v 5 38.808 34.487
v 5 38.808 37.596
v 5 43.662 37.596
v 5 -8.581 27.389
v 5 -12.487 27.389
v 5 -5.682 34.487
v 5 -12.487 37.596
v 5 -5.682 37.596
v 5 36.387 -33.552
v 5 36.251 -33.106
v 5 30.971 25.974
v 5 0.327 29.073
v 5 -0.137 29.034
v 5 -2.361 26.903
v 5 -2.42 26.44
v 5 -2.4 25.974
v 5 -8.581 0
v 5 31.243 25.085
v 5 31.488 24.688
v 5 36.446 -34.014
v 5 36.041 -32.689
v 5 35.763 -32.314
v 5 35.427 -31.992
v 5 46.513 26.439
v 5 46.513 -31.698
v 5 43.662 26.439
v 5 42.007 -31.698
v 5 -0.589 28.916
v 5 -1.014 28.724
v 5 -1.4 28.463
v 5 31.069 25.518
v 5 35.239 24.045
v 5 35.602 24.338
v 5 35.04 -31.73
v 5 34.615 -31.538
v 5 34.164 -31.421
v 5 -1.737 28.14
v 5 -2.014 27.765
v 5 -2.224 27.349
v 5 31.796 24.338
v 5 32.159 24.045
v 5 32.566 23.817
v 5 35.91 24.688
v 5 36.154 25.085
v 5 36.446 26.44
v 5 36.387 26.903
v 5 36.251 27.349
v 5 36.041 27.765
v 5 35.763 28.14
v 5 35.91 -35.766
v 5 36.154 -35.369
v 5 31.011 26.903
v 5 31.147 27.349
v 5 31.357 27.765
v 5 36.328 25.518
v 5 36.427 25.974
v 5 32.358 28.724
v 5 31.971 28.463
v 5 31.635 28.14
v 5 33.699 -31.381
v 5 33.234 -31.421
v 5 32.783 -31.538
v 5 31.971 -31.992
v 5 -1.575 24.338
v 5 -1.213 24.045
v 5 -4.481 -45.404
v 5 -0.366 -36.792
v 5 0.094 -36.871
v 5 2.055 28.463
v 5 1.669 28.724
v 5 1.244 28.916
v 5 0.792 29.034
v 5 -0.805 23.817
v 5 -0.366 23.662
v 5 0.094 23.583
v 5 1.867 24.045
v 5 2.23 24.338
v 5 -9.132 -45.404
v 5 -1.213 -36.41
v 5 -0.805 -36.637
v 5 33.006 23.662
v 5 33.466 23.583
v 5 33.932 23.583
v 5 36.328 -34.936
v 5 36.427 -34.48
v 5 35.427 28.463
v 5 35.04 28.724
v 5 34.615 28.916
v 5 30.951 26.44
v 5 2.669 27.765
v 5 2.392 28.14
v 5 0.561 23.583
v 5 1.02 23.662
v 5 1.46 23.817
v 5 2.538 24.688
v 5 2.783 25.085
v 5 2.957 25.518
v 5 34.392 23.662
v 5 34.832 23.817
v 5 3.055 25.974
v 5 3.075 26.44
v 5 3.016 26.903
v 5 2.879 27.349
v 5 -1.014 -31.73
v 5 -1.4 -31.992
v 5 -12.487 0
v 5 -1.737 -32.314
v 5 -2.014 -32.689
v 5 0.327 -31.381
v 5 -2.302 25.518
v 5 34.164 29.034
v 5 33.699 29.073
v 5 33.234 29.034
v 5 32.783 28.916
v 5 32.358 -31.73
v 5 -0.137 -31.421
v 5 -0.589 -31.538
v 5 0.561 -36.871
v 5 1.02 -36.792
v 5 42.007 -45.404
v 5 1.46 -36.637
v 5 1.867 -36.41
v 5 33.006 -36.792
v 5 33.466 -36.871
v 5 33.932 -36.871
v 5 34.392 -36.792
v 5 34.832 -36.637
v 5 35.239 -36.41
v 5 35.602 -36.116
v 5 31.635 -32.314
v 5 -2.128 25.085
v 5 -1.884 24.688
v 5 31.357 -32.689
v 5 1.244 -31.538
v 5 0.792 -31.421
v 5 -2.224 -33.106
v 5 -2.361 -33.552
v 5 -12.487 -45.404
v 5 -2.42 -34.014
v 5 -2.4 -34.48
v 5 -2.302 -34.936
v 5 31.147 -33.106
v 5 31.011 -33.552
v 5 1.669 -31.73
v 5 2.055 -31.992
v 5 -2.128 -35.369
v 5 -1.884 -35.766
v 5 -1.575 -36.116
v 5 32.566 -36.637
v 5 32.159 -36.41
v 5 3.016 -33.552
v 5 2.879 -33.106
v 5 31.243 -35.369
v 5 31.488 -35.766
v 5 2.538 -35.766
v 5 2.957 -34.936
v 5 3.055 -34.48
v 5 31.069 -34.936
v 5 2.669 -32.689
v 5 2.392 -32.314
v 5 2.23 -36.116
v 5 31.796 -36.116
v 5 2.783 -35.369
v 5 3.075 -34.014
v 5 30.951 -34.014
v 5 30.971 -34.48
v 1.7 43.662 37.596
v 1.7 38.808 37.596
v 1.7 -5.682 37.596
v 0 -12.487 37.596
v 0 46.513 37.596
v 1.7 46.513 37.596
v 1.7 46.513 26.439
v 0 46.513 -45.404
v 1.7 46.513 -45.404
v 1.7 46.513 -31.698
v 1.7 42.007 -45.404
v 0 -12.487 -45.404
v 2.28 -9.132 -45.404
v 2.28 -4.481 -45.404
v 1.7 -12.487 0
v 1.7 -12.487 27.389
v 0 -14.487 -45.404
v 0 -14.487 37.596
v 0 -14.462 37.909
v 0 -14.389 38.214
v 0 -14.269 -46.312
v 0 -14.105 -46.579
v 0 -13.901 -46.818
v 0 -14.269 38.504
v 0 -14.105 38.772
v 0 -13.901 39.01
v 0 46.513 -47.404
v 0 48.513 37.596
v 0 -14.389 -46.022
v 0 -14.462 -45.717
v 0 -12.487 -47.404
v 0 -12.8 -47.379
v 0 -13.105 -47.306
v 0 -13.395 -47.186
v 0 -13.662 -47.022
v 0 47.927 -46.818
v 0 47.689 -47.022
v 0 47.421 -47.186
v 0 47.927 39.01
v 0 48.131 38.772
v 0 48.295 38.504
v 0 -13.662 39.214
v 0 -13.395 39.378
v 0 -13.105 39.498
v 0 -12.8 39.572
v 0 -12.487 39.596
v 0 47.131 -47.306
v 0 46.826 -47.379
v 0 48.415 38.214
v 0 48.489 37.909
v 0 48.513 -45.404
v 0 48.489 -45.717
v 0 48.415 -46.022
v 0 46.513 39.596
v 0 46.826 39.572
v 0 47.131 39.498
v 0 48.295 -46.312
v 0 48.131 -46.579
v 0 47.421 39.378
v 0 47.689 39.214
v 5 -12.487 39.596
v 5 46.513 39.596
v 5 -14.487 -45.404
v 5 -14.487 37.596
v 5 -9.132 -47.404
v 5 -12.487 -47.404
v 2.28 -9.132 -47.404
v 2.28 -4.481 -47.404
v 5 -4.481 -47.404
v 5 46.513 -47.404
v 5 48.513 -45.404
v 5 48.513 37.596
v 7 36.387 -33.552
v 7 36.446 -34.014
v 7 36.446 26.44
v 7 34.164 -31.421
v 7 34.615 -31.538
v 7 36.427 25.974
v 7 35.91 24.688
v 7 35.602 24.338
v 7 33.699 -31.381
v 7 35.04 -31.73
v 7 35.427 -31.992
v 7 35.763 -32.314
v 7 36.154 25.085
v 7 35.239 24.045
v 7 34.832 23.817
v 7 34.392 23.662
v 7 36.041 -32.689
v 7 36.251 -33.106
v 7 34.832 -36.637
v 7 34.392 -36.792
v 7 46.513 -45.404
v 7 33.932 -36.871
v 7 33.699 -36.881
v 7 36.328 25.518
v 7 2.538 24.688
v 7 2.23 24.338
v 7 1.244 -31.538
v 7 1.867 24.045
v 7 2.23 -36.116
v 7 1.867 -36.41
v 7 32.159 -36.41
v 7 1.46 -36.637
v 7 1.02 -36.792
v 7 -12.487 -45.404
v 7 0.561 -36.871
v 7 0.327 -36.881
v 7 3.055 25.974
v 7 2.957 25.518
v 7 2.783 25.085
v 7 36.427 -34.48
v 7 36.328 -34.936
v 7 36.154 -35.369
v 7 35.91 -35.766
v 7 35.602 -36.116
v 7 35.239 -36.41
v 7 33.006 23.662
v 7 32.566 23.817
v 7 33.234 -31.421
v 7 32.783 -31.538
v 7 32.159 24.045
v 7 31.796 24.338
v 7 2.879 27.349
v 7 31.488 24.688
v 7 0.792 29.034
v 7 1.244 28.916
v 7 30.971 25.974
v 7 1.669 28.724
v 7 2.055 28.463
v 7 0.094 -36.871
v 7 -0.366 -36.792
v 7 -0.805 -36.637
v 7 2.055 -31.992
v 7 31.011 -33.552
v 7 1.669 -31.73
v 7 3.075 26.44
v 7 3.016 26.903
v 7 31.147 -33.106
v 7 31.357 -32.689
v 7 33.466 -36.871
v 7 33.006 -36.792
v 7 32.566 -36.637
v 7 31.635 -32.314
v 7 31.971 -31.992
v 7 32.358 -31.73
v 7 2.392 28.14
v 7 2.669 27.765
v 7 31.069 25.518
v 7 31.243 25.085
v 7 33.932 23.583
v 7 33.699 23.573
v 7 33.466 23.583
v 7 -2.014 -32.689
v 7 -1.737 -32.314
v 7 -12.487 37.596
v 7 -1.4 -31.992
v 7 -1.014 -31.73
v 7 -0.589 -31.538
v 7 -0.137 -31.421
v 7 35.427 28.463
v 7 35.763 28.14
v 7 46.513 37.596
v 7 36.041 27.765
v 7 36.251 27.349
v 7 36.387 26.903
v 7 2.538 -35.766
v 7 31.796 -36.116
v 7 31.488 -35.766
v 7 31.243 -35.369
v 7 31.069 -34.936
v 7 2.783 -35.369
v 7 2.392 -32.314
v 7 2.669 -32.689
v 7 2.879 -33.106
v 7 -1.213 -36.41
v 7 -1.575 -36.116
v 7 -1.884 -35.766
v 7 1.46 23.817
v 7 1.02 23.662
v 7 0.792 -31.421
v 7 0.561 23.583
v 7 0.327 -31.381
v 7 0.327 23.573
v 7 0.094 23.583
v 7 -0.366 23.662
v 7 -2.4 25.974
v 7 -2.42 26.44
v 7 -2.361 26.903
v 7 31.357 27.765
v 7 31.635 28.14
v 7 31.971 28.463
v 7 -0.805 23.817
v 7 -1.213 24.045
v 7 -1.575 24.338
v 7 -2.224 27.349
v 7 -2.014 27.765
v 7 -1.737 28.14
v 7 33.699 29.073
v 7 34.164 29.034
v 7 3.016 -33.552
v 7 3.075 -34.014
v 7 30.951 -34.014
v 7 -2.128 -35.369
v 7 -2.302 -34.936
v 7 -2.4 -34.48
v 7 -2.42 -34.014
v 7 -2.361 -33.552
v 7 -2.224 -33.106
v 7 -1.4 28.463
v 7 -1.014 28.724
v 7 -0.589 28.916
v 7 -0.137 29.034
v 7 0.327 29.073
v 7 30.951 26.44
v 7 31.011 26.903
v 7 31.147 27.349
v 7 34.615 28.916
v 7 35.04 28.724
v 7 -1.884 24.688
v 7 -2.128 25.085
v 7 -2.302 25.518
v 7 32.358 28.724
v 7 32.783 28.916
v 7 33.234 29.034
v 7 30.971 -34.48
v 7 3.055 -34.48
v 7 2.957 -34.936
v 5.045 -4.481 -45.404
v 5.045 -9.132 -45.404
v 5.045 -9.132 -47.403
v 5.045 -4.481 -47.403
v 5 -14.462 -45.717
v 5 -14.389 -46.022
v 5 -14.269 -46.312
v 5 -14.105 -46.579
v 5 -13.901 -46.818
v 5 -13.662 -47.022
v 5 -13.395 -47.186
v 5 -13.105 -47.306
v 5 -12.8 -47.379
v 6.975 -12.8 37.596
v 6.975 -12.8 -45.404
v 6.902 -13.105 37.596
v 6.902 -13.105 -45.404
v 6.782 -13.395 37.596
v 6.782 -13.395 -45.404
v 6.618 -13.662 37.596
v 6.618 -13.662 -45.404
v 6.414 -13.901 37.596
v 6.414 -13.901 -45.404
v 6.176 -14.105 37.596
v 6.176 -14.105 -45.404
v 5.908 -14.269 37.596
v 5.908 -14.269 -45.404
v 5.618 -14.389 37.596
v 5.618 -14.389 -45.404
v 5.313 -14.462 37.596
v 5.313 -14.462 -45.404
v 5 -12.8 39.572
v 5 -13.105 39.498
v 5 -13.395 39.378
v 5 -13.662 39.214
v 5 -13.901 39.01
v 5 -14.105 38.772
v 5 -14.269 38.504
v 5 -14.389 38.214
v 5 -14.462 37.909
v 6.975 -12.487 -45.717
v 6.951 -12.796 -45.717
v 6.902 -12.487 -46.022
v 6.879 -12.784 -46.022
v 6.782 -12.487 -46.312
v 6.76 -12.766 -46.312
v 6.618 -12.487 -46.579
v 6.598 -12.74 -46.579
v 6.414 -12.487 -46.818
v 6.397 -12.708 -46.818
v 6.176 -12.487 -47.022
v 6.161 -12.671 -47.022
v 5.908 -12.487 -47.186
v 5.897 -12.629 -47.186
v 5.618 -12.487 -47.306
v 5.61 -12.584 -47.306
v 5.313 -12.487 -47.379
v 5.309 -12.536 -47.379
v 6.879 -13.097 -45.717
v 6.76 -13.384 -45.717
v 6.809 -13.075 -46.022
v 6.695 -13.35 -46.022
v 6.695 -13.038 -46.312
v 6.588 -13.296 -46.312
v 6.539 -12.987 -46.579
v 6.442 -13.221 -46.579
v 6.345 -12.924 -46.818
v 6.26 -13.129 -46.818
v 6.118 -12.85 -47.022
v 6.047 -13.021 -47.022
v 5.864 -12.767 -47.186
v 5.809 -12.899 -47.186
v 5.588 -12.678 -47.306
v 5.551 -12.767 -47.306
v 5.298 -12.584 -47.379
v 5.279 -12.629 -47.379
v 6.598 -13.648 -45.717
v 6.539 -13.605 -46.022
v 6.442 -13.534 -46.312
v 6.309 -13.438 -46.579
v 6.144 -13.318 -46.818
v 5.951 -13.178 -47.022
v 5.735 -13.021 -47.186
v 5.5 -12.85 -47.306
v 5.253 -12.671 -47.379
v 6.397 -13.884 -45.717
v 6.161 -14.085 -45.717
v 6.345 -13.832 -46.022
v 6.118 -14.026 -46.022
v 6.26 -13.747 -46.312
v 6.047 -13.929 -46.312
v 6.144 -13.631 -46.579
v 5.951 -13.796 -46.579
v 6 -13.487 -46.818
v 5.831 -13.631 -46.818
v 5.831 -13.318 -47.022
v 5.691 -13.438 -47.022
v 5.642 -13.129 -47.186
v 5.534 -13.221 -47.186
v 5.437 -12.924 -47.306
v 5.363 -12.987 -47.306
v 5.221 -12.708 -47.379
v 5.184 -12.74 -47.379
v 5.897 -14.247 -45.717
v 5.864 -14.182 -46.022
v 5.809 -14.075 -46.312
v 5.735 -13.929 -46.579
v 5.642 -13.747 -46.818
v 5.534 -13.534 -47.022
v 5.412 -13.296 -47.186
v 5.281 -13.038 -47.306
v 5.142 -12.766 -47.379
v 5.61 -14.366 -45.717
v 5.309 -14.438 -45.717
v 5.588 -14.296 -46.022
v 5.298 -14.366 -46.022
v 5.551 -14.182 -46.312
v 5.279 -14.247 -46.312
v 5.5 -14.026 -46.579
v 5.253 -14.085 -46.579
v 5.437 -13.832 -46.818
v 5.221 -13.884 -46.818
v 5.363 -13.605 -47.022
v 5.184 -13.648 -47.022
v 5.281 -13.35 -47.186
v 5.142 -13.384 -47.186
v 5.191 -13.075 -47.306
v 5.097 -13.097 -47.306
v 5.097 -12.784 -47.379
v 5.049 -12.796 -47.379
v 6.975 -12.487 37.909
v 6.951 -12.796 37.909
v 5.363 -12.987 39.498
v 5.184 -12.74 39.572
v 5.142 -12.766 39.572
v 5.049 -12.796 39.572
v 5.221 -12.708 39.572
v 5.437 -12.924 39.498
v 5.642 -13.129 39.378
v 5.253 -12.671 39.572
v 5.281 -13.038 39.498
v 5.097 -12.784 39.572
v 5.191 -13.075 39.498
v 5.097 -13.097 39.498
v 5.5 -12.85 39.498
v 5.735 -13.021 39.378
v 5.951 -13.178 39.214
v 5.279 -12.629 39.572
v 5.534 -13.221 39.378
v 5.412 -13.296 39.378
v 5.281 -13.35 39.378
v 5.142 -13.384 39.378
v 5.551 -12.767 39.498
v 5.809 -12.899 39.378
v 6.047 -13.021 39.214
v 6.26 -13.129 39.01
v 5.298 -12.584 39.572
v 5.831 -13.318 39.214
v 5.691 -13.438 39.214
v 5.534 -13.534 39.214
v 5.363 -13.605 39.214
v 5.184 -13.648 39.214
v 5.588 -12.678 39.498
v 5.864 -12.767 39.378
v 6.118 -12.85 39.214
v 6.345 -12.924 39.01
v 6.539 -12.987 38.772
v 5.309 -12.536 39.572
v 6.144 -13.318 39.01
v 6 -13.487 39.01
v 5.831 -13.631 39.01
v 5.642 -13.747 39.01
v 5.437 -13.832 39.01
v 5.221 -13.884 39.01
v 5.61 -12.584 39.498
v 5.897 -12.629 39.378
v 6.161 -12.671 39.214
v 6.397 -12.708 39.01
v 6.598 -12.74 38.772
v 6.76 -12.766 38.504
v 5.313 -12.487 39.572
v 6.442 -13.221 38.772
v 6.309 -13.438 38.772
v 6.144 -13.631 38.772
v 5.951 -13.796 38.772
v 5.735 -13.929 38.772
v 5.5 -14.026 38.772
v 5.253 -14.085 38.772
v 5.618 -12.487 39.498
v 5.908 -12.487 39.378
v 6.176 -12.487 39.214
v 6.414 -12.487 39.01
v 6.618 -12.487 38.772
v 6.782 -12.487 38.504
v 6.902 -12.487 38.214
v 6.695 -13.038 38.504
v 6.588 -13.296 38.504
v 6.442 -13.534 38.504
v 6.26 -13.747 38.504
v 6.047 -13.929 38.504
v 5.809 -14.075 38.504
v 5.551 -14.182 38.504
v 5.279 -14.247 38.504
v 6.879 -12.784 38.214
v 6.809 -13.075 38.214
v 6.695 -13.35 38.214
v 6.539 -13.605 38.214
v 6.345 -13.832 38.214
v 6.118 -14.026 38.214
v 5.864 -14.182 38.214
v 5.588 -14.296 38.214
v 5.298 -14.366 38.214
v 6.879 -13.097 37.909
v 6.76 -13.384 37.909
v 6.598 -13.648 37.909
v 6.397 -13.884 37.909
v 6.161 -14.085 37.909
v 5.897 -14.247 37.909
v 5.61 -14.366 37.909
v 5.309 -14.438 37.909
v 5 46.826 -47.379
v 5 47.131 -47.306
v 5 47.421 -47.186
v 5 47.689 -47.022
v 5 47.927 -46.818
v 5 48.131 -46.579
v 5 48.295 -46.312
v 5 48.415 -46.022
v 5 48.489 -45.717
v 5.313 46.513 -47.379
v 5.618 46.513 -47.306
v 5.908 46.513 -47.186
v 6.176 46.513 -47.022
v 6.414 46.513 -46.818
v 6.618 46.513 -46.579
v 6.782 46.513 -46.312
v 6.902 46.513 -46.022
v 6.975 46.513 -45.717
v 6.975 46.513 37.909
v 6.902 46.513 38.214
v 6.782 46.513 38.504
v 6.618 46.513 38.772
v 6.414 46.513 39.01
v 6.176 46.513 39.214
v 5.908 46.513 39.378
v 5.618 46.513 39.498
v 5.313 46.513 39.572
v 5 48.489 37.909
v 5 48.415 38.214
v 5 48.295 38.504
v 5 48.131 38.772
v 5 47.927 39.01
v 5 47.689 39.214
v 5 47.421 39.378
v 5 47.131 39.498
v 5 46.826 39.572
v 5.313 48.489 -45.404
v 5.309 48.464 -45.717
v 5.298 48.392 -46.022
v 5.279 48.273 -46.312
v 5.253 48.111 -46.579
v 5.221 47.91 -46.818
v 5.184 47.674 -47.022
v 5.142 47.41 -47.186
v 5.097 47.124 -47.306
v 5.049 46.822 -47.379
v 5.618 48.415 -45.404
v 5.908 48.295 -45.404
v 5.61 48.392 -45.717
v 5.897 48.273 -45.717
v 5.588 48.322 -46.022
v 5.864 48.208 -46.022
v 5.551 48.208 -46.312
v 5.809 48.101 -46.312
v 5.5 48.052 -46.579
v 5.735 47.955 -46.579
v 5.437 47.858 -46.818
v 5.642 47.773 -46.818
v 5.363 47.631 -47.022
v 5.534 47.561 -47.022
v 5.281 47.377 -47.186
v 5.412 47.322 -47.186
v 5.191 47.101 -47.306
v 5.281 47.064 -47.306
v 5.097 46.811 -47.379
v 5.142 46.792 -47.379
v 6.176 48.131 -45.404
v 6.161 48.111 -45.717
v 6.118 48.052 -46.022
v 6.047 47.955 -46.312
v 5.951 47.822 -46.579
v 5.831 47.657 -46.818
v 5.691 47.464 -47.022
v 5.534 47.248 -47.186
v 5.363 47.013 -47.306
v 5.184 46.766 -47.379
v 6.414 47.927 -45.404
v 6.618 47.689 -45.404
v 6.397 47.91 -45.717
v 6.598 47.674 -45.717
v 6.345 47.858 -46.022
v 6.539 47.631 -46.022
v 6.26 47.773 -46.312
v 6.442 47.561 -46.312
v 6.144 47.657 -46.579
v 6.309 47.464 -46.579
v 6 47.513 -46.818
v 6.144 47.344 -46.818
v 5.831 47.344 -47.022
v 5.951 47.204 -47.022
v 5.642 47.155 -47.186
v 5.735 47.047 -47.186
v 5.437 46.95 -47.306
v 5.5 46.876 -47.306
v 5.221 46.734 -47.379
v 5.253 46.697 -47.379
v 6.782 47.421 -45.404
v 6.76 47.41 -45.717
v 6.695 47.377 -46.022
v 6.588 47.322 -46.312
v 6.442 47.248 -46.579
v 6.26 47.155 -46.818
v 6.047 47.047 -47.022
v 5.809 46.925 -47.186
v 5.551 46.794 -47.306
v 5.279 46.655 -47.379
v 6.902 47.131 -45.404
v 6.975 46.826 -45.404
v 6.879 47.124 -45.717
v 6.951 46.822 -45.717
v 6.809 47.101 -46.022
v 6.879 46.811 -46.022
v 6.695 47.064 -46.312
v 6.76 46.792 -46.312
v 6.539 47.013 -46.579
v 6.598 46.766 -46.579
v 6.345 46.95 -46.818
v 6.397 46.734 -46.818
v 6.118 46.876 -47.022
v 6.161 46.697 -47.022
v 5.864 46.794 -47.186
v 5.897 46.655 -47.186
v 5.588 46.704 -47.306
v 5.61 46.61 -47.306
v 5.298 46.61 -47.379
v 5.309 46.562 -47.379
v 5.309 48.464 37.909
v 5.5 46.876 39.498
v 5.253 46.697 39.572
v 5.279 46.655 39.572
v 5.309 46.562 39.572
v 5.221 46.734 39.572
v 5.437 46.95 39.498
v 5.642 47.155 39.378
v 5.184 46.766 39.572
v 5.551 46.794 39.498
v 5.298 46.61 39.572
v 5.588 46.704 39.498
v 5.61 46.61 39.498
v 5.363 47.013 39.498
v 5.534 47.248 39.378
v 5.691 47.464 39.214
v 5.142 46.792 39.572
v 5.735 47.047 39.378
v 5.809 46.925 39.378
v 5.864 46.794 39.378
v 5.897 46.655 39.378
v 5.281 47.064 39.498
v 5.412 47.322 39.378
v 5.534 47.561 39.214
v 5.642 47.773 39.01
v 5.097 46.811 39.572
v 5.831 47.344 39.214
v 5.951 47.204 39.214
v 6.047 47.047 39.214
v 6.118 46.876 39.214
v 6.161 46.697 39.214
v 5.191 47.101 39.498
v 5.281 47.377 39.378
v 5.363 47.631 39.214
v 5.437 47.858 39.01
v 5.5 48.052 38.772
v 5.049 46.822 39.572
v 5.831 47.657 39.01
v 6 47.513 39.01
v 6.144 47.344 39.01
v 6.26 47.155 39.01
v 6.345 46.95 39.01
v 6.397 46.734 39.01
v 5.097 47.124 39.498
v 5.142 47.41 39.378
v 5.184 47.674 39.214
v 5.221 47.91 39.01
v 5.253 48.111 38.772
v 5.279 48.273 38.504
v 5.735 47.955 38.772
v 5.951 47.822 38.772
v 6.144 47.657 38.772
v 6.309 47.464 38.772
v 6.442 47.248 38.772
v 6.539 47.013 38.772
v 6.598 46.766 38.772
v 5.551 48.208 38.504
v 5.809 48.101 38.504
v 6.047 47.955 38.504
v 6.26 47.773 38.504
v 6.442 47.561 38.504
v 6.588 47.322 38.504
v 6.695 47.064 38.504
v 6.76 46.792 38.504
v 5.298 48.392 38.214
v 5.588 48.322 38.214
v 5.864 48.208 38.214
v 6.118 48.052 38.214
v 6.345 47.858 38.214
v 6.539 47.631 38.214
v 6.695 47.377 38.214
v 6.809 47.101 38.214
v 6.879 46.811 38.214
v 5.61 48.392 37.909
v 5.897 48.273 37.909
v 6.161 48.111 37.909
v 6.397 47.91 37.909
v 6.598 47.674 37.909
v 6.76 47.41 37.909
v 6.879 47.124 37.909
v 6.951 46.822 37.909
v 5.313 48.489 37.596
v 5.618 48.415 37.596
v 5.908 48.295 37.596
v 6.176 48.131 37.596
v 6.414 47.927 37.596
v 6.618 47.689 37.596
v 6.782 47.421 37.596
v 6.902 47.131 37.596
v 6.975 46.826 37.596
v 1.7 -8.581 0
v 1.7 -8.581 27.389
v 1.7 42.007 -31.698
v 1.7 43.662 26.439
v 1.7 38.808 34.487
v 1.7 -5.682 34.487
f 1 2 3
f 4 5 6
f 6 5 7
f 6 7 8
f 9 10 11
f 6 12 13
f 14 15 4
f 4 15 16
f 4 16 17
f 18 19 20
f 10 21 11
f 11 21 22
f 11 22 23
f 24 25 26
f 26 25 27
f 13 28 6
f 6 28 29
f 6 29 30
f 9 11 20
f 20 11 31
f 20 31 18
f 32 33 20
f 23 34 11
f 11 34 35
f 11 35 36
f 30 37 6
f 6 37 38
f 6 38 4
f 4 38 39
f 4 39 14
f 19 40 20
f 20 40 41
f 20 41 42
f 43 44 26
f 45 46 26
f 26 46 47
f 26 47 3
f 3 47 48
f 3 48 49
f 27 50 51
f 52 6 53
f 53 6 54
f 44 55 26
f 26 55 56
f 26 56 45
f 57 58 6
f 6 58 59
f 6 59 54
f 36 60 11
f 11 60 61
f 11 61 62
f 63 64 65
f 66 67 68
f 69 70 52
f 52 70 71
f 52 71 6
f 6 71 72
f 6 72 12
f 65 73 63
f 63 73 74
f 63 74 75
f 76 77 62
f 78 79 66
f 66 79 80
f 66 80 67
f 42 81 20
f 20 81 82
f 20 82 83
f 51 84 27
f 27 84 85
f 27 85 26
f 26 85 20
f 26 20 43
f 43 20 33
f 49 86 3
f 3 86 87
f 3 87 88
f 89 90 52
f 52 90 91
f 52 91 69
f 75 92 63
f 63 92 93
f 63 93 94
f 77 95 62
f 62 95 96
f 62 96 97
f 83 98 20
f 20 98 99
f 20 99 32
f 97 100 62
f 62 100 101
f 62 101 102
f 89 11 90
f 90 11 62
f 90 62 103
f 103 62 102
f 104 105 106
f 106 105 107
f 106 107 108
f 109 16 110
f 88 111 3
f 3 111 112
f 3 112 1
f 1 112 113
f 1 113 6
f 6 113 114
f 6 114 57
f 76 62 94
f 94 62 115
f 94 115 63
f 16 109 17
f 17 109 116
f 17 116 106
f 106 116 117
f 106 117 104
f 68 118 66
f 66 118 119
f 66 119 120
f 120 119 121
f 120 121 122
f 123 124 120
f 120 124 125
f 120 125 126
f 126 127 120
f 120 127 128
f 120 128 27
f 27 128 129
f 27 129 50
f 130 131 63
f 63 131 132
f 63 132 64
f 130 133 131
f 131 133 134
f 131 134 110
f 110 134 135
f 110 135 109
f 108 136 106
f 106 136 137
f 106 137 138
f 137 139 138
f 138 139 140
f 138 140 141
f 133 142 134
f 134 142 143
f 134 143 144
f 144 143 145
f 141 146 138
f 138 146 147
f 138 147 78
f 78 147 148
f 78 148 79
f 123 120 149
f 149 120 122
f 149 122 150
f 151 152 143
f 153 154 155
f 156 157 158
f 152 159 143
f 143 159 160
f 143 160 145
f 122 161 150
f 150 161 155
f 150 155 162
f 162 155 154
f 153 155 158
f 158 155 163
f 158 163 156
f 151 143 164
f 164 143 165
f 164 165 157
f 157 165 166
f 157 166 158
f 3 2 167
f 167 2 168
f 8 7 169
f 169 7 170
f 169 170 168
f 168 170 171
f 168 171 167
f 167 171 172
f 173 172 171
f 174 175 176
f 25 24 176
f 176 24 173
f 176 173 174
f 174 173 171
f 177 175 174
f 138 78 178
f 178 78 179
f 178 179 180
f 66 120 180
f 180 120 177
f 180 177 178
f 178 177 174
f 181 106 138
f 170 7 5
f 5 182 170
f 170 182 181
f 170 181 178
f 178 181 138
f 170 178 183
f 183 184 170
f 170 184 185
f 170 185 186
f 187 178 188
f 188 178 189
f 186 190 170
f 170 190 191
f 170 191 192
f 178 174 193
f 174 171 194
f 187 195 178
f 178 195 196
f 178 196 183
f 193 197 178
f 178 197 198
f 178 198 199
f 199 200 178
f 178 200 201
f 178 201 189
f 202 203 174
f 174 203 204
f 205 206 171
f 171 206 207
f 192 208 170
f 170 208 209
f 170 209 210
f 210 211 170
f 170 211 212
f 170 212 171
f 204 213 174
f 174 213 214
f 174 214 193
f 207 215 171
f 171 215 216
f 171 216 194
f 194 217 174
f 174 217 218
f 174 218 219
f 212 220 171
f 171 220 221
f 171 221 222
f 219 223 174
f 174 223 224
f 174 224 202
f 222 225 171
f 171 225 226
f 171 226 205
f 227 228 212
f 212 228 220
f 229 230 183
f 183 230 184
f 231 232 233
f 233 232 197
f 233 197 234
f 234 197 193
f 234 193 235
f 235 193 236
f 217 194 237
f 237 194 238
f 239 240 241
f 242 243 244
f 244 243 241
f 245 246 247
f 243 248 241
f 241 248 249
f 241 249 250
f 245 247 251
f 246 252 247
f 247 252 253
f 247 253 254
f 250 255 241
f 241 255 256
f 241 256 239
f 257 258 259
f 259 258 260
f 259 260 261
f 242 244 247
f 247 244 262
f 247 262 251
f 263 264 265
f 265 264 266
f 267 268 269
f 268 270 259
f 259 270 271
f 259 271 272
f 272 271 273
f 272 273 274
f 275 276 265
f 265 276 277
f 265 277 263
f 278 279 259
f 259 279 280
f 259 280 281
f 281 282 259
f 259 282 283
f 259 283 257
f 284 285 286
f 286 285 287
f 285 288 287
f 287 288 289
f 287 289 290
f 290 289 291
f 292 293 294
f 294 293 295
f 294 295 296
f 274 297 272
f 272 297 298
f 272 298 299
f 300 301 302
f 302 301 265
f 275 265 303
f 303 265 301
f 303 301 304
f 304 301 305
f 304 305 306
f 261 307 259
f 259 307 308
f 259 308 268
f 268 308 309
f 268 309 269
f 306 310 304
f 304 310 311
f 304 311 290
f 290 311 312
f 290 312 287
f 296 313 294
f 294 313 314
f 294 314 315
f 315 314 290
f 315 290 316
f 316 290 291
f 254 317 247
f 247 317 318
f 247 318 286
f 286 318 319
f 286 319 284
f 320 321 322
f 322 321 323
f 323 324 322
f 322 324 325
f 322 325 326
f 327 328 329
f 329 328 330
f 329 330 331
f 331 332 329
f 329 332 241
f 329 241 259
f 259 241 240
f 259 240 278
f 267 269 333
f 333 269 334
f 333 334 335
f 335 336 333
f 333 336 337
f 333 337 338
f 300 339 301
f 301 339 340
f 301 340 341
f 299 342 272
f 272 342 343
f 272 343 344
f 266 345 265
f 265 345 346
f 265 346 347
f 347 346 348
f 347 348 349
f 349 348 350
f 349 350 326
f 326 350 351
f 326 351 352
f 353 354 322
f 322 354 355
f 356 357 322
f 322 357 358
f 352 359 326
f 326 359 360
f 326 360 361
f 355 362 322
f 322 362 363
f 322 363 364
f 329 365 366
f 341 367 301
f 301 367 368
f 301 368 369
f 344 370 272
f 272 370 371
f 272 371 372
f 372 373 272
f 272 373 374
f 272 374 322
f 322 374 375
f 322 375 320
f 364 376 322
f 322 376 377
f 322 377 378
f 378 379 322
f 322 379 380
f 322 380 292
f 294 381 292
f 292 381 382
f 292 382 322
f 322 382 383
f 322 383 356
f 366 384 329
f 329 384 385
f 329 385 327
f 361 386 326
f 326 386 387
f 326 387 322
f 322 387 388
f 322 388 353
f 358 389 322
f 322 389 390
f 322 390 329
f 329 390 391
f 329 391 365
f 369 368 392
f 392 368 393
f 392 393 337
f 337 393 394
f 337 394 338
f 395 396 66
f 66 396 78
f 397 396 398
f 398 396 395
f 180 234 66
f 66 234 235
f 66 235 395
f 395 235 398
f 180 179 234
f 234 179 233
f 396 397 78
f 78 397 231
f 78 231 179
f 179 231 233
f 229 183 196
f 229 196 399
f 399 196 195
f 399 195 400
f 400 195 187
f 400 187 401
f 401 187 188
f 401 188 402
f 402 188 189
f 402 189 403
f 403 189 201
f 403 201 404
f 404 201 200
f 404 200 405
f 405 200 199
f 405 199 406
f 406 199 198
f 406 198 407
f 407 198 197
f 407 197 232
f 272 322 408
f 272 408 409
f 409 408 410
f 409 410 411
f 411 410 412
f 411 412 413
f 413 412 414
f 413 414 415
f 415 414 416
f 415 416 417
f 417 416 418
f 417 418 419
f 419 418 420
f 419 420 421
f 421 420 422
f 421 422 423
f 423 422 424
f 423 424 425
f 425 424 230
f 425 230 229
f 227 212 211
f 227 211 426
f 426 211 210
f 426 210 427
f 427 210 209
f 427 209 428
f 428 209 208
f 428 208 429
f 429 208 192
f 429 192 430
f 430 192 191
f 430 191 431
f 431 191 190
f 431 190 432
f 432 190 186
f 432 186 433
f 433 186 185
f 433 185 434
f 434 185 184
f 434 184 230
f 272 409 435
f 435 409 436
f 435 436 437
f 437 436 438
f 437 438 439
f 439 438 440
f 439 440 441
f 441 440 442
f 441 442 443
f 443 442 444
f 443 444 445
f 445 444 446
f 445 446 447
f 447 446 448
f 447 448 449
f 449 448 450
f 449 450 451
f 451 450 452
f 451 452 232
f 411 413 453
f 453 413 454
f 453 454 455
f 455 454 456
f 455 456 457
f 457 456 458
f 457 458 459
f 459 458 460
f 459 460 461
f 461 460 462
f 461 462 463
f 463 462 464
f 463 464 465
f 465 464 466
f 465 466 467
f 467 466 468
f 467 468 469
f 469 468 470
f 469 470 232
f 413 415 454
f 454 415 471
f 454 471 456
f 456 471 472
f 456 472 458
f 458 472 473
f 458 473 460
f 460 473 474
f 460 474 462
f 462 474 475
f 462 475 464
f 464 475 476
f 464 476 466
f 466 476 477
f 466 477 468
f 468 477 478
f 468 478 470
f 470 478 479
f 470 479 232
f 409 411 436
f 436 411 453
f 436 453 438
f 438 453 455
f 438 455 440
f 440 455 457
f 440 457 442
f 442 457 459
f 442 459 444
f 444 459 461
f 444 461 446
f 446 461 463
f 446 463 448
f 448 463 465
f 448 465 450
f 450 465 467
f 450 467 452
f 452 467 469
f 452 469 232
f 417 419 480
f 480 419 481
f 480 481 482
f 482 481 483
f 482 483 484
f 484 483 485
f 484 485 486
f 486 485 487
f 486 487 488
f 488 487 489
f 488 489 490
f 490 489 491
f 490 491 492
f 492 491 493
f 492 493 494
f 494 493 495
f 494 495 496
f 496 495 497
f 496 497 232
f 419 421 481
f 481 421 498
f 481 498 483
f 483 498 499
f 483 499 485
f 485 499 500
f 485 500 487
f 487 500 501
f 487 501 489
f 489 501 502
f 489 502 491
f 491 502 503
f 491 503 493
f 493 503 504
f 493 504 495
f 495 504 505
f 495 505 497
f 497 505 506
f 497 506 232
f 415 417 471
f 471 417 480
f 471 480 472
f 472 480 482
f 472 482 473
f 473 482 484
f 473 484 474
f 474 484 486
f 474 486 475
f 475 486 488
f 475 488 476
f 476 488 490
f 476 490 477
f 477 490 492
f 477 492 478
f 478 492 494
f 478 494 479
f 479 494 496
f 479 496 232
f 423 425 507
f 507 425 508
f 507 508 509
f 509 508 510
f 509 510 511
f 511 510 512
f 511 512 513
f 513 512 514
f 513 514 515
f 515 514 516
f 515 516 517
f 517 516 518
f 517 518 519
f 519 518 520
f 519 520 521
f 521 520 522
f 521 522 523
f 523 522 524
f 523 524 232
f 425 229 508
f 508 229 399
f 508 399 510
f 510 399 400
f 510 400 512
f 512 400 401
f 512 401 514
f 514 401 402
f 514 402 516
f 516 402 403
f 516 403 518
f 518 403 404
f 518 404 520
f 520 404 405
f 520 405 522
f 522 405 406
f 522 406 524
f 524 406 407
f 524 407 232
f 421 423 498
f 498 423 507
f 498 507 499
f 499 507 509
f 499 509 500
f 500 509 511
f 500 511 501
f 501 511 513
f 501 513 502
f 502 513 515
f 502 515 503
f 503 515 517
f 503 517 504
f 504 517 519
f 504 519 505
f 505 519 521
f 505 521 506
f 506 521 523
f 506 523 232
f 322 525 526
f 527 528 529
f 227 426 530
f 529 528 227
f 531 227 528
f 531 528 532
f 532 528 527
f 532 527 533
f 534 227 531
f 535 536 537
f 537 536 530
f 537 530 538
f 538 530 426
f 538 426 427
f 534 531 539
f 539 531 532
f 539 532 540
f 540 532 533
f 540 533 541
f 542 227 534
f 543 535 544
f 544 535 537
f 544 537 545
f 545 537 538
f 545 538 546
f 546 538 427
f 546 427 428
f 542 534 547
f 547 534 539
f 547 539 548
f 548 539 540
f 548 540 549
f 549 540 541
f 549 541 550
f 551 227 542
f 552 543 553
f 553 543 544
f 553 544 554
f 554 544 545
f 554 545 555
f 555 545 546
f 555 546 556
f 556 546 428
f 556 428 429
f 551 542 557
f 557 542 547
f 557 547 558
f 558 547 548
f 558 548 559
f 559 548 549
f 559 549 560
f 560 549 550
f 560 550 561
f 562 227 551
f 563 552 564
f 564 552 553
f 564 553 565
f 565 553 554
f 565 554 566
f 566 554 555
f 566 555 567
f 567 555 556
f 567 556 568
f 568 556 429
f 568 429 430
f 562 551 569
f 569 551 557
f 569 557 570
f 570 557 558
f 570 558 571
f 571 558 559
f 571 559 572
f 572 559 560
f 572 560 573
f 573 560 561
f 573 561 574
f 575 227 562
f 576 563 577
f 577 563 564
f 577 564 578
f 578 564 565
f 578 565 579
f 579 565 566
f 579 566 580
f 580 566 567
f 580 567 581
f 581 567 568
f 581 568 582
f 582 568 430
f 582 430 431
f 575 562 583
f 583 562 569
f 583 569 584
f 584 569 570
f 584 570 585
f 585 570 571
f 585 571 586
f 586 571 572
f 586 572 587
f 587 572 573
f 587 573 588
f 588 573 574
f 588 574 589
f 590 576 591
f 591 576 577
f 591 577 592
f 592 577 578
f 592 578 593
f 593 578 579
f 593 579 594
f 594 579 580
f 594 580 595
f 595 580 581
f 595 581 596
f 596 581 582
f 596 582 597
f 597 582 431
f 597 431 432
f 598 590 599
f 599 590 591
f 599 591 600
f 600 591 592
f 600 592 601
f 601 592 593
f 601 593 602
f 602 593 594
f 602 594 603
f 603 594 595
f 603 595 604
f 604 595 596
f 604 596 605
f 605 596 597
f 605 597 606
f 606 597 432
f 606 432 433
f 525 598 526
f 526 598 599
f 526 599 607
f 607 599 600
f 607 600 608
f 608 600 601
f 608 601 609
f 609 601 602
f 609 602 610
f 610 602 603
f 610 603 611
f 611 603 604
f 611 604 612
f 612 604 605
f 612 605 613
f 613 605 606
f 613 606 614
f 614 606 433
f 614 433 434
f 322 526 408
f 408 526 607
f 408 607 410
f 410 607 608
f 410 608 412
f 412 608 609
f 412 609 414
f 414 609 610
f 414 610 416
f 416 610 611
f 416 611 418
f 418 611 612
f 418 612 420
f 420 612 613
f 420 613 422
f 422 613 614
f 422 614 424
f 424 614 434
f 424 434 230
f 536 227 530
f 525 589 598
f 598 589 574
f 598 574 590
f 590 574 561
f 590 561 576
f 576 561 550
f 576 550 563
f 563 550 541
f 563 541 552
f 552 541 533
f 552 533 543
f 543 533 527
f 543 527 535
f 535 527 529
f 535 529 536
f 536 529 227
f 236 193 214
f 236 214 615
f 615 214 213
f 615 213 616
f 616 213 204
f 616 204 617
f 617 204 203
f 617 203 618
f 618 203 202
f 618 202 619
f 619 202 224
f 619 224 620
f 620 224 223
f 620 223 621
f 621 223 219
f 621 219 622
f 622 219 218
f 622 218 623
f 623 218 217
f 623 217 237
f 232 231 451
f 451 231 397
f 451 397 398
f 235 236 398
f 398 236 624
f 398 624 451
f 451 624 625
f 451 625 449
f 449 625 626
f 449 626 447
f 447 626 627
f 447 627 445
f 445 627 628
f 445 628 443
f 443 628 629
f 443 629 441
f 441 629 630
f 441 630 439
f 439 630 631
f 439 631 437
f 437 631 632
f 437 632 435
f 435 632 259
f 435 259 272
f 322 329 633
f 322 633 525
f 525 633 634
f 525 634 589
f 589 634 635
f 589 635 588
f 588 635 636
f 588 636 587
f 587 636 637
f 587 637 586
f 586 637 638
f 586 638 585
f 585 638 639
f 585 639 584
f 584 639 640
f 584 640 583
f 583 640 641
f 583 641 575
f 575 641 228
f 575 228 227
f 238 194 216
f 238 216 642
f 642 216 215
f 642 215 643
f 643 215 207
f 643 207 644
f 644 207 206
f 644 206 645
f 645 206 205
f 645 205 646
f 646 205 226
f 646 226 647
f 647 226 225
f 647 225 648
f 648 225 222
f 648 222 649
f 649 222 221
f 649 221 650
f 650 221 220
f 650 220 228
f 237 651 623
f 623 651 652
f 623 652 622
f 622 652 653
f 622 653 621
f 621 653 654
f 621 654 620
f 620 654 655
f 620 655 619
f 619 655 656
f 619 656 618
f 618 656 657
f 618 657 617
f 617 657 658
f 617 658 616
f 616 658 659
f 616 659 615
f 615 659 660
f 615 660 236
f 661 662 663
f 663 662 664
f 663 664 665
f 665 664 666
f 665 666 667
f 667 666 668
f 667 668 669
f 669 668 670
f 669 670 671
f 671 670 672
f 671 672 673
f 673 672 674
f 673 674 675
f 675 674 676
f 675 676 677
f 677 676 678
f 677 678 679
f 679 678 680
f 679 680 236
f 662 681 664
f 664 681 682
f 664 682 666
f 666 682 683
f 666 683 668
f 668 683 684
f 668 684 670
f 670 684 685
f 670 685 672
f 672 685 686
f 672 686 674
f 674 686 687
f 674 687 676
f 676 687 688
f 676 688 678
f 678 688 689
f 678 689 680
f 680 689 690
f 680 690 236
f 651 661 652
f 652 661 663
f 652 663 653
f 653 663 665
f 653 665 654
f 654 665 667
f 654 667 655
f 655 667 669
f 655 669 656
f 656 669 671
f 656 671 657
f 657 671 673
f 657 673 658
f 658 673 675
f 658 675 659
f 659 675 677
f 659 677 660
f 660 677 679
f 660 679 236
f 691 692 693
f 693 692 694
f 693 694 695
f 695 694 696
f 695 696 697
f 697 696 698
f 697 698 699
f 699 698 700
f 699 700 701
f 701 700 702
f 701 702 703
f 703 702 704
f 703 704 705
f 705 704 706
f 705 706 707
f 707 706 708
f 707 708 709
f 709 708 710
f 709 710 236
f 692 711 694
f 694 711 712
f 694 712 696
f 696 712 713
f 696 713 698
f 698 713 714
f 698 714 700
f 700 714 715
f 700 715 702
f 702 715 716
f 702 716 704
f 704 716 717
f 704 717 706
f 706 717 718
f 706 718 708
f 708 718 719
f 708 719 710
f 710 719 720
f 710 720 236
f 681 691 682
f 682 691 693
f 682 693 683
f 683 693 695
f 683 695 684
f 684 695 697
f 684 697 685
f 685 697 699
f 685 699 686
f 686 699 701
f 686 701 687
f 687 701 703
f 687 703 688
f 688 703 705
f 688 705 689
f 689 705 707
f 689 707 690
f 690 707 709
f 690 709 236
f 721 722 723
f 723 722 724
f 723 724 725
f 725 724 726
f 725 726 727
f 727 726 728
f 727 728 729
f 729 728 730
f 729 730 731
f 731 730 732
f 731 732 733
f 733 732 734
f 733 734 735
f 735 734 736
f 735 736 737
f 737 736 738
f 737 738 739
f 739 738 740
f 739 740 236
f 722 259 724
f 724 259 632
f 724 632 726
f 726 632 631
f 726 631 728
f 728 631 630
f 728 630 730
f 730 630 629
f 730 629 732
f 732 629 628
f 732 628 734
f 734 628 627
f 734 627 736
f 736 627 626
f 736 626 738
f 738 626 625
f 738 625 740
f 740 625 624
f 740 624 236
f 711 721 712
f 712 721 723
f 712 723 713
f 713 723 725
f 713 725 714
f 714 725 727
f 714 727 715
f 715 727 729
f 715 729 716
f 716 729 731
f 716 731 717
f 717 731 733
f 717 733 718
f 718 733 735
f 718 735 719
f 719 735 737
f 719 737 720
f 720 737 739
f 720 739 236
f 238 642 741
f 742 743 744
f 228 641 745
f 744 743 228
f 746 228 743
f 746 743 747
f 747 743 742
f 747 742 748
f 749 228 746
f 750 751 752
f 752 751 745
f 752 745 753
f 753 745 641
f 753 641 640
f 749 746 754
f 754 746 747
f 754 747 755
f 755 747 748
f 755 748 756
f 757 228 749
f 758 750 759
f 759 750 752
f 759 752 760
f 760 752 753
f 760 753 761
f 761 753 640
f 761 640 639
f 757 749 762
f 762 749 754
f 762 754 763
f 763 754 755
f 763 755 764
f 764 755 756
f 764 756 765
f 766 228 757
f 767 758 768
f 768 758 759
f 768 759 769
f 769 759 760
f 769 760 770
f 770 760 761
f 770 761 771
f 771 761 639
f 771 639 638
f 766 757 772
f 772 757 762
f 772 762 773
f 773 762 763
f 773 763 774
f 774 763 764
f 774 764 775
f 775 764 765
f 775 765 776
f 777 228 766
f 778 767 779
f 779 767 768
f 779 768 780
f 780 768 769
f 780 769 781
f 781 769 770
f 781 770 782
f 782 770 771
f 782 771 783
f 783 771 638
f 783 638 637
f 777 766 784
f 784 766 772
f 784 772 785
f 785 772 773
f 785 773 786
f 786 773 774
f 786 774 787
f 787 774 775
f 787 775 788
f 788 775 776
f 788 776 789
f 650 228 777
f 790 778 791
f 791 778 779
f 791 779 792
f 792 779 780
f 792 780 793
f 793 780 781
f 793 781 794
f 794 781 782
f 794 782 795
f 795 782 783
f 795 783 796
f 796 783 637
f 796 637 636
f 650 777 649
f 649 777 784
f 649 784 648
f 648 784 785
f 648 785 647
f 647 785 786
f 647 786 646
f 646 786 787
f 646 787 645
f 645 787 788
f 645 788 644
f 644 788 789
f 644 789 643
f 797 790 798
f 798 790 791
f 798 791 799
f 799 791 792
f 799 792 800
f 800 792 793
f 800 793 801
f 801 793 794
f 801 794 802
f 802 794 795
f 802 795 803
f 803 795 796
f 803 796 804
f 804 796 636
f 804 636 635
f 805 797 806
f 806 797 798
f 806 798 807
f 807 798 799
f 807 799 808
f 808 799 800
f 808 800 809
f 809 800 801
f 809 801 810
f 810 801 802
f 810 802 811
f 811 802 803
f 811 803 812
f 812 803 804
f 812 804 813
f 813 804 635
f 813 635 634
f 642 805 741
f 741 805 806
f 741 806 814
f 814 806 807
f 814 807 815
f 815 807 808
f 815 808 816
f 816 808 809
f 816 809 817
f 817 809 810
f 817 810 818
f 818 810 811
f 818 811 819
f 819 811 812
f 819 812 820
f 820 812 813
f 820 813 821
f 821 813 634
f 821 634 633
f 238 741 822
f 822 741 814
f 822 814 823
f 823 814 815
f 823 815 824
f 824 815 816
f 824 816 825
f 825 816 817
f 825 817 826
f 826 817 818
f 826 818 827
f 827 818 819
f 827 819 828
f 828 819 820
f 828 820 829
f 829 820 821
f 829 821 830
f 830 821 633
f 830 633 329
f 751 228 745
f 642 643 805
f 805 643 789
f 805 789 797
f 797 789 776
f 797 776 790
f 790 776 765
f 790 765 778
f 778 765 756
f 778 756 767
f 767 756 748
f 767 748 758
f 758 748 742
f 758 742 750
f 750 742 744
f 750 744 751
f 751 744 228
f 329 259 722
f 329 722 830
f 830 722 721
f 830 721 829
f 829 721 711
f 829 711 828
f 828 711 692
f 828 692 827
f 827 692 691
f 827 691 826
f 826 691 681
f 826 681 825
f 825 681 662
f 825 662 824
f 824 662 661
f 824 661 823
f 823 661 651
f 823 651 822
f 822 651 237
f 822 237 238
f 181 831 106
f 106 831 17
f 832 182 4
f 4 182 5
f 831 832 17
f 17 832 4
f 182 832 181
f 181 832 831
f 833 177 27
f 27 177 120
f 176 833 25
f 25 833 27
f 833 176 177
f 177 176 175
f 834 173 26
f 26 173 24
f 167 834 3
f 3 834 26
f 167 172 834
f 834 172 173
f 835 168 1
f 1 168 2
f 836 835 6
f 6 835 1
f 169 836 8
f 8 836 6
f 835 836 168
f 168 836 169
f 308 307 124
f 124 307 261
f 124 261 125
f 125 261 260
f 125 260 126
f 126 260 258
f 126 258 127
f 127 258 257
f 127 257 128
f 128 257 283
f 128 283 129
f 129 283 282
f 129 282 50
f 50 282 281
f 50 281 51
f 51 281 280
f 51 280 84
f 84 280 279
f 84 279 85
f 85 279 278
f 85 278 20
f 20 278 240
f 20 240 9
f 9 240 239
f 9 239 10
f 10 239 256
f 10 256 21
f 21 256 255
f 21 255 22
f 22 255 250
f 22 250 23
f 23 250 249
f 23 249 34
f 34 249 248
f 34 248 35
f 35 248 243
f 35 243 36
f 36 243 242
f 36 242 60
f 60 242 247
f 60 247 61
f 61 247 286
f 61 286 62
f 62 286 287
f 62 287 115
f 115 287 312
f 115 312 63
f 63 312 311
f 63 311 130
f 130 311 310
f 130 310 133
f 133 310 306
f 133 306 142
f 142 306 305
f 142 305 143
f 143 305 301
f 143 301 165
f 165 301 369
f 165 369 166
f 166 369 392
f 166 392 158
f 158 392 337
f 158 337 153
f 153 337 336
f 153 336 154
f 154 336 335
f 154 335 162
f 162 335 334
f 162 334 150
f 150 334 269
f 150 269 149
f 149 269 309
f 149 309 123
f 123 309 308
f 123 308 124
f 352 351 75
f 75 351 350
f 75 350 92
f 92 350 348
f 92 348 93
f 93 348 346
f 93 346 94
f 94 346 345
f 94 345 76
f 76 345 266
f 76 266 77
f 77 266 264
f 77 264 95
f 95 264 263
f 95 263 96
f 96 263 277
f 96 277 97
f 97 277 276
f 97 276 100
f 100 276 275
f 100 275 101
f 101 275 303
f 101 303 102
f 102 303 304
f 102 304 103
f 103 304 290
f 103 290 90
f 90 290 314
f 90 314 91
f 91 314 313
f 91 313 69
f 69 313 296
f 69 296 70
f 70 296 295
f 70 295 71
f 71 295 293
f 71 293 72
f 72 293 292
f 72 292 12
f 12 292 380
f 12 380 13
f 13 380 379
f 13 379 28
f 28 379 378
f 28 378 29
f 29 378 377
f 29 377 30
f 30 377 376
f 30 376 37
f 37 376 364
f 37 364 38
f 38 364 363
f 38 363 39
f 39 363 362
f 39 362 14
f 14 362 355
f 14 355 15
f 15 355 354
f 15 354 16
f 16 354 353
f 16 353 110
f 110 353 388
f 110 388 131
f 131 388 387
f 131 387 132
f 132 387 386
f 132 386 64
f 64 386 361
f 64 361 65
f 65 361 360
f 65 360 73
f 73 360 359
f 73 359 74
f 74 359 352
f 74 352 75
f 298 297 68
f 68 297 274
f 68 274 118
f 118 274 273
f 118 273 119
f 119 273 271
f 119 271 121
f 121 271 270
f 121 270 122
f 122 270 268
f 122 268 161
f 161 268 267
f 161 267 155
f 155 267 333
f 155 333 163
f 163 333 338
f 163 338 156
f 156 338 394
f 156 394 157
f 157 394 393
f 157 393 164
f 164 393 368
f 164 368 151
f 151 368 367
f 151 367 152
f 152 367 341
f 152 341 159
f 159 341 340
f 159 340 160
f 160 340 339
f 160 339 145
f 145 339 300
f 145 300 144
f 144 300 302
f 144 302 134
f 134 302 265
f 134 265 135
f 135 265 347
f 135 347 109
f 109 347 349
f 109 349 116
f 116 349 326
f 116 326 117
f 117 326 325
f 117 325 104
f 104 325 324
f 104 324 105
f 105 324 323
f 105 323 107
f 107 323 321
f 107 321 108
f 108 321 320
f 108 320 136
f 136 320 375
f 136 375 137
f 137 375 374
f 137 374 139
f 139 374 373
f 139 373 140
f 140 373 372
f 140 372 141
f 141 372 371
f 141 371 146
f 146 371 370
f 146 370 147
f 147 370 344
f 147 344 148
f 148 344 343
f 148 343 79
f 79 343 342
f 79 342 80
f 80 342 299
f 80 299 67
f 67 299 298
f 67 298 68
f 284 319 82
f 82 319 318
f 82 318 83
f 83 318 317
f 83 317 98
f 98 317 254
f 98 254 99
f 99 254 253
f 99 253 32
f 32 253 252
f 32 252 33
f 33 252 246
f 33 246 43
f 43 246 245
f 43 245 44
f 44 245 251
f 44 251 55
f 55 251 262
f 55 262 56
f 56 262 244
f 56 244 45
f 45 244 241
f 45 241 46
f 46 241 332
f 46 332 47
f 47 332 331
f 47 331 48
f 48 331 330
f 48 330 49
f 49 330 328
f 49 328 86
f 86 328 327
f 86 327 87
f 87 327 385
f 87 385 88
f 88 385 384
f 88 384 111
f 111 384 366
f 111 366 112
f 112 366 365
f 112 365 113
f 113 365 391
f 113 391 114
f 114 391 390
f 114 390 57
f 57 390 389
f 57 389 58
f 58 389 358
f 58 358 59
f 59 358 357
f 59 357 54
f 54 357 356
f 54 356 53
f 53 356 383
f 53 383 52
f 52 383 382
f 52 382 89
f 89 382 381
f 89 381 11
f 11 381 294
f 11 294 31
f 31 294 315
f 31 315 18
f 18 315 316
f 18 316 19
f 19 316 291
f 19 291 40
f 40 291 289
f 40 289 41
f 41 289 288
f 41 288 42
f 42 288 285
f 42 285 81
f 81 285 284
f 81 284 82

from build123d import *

# Parameters (mm, degrees)
SKETCH_1_W          = 87
SKETCH_1_H          = 63
SKETCH_1_W_2        = 83
SKETCH_1_H_2        = 59
EXTRUDE_1_DEPTH     = 5
SKETCH_2_W          = 87
SKETCH_2_H          = 63
EXTRUDE_2_DEPTH     = 2
SKETCH_3_W          = 2.764626384
SKETCH_3_H          = 4.6515936
CUT_EXTRUDE_1_DEPTH = 2
FILLET_1_R          = 2
SKETCH_4_W          = 27.388964673
SKETCH_4_H          = 3.905856672
SKETCH_4_W_2        = 13.70635998
SKETCH_4_H_2        = 4.505719406
SKETCH_4_W_3        = 11.157018238
SKETCH_4_H_3        = 2.851387493
SKETCH_4_W_4        = 3.109085913
SKETCH_4_H_4        = 44.489819457
EXTRUDE_3_DEPTH     = 3.3
SKETCH_5_R          = 2.75
CUT_EXTRUDE_2_DEPTH = 10


with BuildPart() as part:
    # 草图1 → 凸台-拉伸1 (new body)
    with BuildSketch(Plane(origin=(0, 0, 0), x_dir=(0, 0, -1), z_dir=(1, 0, 0))):
        with Locations((3.90387463, 17.013155975)):
            Rectangle(SKETCH_1_W, SKETCH_1_H)
        with Locations((3.90387463, 17.013155975)):
            Rectangle(SKETCH_1_W_2, SKETCH_1_H_2, mode=Mode.SUBTRACT)
    extrude(amount=EXTRUDE_1_DEPTH)

    # 草图2 → 凸台-拉伸2 (add)
    with BuildSketch(Plane(origin=(5, 0, 0), x_dir=(0, 0, -1), z_dir=(1, 0, 0))):
        with Locations((3.90387463, 17.013155975)):
            Rectangle(SKETCH_2_W, SKETCH_2_H)
    extrude(amount=EXTRUDE_2_DEPTH)

    # 草图3 → 切除-拉伸1 (cut)
    with BuildSketch(Plane(origin=(0, 0, -47.40387463), x_dir=(-1, 0, 0), z_dir=(0, 0, -1))):
        with Locations((-3.662779601, -6.806448474)):
            Rectangle(SKETCH_3_W, SKETCH_3_H)
    extrude(amount=-CUT_EXTRUDE_1_DEPTH, mode=Mode.SUBTRACT)

    # 圆角1
    # the kernel refuses this fillet: 2 mm, written as the material it takes off along each edge
    with BuildSketch(Plane(origin=(5, 46.513155975, -45.40387463), x_dir=(1, 0, 0), z_dir=(0, 1, 0))) as fillet_1_piece_1_section:
        Polygon((0, 0), (FILLET_1_R, 0), (FILLET_1_R, FILLET_1_R), (0, FILLET_1_R), align=None)
    fillet_1_piece_1 = extrude(amount=FILLET_1_R, mode=Mode.PRIVATE)
    fillet_1_piece_1 = fillet_1_piece_1 - Plane(origin=(5, 46.513155975, -45.40387463), x_dir=(-0.7071067811865475, 0, 0.7071067811865475), z_dir=(0, 1, 0)) * Sphere(FILLET_1_R, mode=Mode.PRIVATE)
    add(fillet_1_piece_1, mode=Mode.SUBTRACT)
    with BuildSketch(Plane(origin=(5, -12.486844025, -45.40387463), x_dir=(0, 0, -1), z_dir=(1, 0, 0))) as fillet_1_piece_2_section:
        Polygon((0, 0), (FILLET_1_R, 0), (FILLET_1_R, -FILLET_1_R), (0, -FILLET_1_R), align=None)
    fillet_1_piece_2 = extrude(amount=FILLET_1_R, mode=Mode.PRIVATE)
    fillet_1_piece_2 = fillet_1_piece_2 - Plane(origin=(5, -12.486844025, -45.40387463), x_dir=(0, 0.7071067811865474, 0.7071067811865476), z_dir=(1, 0, 0)) * Sphere(FILLET_1_R, mode=Mode.PRIVATE)
    add(fillet_1_piece_2, mode=Mode.SUBTRACT)
    with BuildSketch(Plane(origin=(5, -12.486844025, 37.59612537), x_dir=(1, 0, 0), z_dir=(0, 0, 1))) as fillet_1_piece_3_section:
        Polygon((0, 0), (FILLET_1_R, 0), (FILLET_1_R, -FILLET_1_R), (0, -FILLET_1_R), align=None)
    fillet_1_piece_3 = extrude(amount=FILLET_1_R, mode=Mode.PRIVATE)
    fillet_1_piece_3 = fillet_1_piece_3 - Plane(origin=(5, -12.486844025, 37.59612537), x_dir=(-0.7071067811865475, 0.7071067811865475, 0), z_dir=(0, 0, 1)) * Sphere(FILLET_1_R, mode=Mode.PRIVATE)
    add(fillet_1_piece_3, mode=Mode.SUBTRACT)
    with BuildSketch(Plane(origin=(5, 46.513155975, 37.59612537), x_dir=(0, 0, 1), z_dir=(0, 1, 0))) as fillet_1_piece_4_section:
        Polygon((0, 0), (FILLET_1_R, 0), (FILLET_1_R, FILLET_1_R), (0, FILLET_1_R), align=None)
    fillet_1_piece_4 = extrude(amount=FILLET_1_R, mode=Mode.PRIVATE)
    fillet_1_piece_4 = fillet_1_piece_4 - Plane(origin=(5, 46.513155975, 37.59612537), x_dir=(-0.7071067811865475, 0, -0.7071067811865475), z_dir=(0, 1, 0)) * Sphere(FILLET_1_R, mode=Mode.PRIVATE)
    add(fillet_1_piece_4, mode=Mode.SUBTRACT)
    with BuildSketch(Plane(origin=(5, 48.513155975, -47.40387463), x_dir=(0, 0, 1), z_dir=(-1, 0, 0)), Plane(origin=(5, -14.486844025, -47.40387463), x_dir=(0, 1, 0), z_dir=(-1, 0, 0)), Plane(origin=(-5, -14.486844025, 39.59612537), x_dir=(0, 1, 0), z_dir=(1, 0, 0)), Plane(origin=(-5, 48.513155975, 39.59612537), x_dir=(0, 0, -1), z_dir=(1, 0, 0))) as fillet_1_piece_5:
        with BuildLine():
            CenterArc((FILLET_1_R, -FILLET_1_R), FILLET_1_R, 90, 90)
            Line((0, -FILLET_1_R), (0, 0))
            Line((0, 0), (FILLET_1_R, 0))
        make_face()
    extrude(amount=10, mode=Mode.SUBTRACT)
    with BuildSketch(Plane(origin=(7, 48.513155975, 37.59612537), x_dir=(-1, 0, 0), z_dir=(0, 0, -1))) as fillet_1_piece_6:
        with BuildLine():
            CenterArc((FILLET_1_R, -FILLET_1_R), FILLET_1_R, 90, 90)
            Line((0, -FILLET_1_R), (0, 0))
            Line((0, 0), (FILLET_1_R, 0))
        make_face()
    extrude(amount=83, mode=Mode.SUBTRACT)
    with BuildSketch(Plane(origin=(7, 46.513155975, -47.40387463), x_dir=(0, 0, 1), z_dir=(0, -1, 0))) as fillet_1_piece_7:
        with BuildLine():
            CenterArc((FILLET_1_R, FILLET_1_R), FILLET_1_R, 180, 90)
            Line((0, FILLET_1_R), (0, 0))
            Line((0, 0), (FILLET_1_R, 0))
        make_face()
    extrude(amount=59, mode=Mode.SUBTRACT)
    with BuildSketch(Plane(origin=(7, -14.486844025, -45.40387463), x_dir=(0, 1, 0), z_dir=(0, 0, 1))) as fillet_1_piece_8:
        with BuildLine():
            CenterArc((FILLET_1_R, FILLET_1_R), FILLET_1_R, 180, 90)
            Line((0, FILLET_1_R), (0, 0))
            Line((0, 0), (FILLET_1_R, 0))
        make_face()
    extrude(amount=83, mode=Mode.SUBTRACT)
    with BuildSketch(Plane(origin=(7, -12.486844025, 39.59612537), x_dir=(-1, 0, 0), z_dir=(0, 1, 0))) as fillet_1_piece_9:
        with BuildLine():
            CenterArc((FILLET_1_R, -FILLET_1_R), FILLET_1_R, 90, 90)
            Line((0, -FILLET_1_R), (0, 0))
            Line((0, 0), (FILLET_1_R, 0))
        make_face()
    extrude(amount=59, mode=Mode.SUBTRACT)

    # 草图4 → 凸台-拉伸3 (add)
    with BuildSketch(Plane.ZY.offset(-5)):
        with Locations((13.694482337, -10.533915689)):
            Rectangle(SKETCH_4_W, SKETCH_4_H)
        with Locations((-38.55069464, 44.260296272)):
            Rectangle(SKETCH_4_W_2, SKETCH_4_H_2)
        with Locations((32.017616251, 45.087462229)):
            Rectangle(SKETCH_4_W_3, SKETCH_4_H_3)
        with Locations((36.041582414, 16.563258925)):
            Rectangle(SKETCH_4_W_4, SKETCH_4_H_4)
    extrude(amount=EXTRUDE_3_DEPTH)

    # 草图5 → 切除-拉伸2 (cut)
    with BuildSketch(Plane.ZY.offset(-5)):
        with Locations((-34.13110136, 33.698944985)):
            Circle(SKETCH_5_R)
        with Locations((26.3233521, 33.698944985)):
            Circle(SKETCH_5_R)
        with Locations((-34.13110136, 0.327366965)):
            Circle(SKETCH_5_R)
        with Locations((26.3233521, 0.327366965)):
            Circle(SKETCH_5_R)
    extrude(amount=-CUT_EXTRUDE_2_DEPTH, mode=Mode.SUBTRACT)


solid = part.part
